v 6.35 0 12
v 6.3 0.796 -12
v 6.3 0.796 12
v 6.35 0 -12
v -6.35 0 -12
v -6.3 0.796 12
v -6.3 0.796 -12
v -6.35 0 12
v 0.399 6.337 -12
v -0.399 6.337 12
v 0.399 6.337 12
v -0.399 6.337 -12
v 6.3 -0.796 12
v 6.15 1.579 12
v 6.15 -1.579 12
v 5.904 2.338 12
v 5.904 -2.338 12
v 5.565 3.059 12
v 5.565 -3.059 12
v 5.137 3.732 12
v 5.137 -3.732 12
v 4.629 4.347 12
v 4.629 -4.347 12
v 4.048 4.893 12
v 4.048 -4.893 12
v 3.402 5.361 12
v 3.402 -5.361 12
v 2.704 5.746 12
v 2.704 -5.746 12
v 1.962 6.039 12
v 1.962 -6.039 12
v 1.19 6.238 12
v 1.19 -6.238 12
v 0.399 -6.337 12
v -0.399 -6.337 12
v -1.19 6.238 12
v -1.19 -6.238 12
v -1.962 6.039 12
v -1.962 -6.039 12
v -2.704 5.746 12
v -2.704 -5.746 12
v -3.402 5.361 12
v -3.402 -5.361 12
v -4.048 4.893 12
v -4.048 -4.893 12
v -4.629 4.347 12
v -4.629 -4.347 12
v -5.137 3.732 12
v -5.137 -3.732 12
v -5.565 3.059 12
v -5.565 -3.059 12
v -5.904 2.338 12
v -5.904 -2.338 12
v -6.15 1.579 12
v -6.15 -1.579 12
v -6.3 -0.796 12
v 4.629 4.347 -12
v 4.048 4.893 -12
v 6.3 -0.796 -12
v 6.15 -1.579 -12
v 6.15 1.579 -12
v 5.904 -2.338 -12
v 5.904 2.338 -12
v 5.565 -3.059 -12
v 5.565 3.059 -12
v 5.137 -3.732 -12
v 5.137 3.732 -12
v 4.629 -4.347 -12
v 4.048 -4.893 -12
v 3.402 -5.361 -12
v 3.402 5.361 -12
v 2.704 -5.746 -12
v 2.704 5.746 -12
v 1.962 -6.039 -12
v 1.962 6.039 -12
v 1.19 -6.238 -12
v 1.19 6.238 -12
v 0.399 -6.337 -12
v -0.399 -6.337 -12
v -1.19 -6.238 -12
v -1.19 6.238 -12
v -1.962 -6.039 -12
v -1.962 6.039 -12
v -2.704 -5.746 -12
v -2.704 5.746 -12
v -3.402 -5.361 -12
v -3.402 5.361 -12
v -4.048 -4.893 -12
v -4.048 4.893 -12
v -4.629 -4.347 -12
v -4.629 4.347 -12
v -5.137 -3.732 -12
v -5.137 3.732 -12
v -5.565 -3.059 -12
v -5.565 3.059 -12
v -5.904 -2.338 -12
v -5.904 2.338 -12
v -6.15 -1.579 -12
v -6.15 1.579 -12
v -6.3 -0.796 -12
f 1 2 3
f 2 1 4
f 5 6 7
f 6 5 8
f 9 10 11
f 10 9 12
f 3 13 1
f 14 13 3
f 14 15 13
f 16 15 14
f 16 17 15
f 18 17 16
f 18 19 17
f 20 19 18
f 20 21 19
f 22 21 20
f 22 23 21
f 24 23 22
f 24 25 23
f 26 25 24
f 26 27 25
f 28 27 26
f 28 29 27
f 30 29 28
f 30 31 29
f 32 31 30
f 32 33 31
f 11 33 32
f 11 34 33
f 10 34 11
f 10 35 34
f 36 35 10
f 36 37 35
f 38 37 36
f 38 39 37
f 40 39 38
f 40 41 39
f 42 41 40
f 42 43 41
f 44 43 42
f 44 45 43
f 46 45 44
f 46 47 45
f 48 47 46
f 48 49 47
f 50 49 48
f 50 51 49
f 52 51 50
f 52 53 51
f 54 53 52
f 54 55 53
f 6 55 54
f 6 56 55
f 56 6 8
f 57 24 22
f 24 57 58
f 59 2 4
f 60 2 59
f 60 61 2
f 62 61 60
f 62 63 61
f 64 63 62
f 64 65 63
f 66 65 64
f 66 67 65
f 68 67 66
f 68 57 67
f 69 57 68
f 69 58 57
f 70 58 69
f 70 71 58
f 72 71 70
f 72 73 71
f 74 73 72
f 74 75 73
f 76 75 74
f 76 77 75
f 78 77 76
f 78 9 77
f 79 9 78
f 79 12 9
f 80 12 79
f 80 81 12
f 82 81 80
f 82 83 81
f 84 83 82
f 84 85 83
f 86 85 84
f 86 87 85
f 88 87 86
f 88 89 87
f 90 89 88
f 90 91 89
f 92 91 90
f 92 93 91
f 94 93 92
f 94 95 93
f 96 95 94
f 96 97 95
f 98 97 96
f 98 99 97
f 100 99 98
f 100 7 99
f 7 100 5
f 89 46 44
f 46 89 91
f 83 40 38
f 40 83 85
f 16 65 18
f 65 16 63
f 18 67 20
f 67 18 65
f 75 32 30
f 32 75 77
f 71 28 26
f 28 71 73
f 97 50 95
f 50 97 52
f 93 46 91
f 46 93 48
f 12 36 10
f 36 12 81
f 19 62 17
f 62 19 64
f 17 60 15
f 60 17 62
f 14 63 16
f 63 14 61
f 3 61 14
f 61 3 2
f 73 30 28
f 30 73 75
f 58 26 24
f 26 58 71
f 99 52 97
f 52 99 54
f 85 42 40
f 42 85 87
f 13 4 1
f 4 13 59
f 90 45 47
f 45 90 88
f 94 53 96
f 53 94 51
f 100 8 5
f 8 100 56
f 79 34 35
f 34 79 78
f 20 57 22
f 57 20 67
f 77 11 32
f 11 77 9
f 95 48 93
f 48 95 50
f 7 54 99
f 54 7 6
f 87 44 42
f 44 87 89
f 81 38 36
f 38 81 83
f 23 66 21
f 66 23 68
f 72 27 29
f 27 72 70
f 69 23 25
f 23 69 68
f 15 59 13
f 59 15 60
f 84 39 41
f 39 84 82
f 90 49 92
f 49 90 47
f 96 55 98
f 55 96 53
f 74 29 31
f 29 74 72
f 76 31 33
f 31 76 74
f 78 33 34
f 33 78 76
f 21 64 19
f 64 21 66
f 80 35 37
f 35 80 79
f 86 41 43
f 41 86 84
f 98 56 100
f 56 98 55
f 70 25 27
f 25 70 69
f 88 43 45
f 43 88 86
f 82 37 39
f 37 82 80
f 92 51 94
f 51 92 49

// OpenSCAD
$fn = 50;


difference() {
	union() {
		translate(v = [0, 0, -12.0000000000]) {
			cylinder(h = 24, r = 6.3500000000);
		}
	}
	union() {
		translate(v = [0, 0, -100.0000000000]) {
			cylinder(h = 200, r = 0);
		}
	}
}
